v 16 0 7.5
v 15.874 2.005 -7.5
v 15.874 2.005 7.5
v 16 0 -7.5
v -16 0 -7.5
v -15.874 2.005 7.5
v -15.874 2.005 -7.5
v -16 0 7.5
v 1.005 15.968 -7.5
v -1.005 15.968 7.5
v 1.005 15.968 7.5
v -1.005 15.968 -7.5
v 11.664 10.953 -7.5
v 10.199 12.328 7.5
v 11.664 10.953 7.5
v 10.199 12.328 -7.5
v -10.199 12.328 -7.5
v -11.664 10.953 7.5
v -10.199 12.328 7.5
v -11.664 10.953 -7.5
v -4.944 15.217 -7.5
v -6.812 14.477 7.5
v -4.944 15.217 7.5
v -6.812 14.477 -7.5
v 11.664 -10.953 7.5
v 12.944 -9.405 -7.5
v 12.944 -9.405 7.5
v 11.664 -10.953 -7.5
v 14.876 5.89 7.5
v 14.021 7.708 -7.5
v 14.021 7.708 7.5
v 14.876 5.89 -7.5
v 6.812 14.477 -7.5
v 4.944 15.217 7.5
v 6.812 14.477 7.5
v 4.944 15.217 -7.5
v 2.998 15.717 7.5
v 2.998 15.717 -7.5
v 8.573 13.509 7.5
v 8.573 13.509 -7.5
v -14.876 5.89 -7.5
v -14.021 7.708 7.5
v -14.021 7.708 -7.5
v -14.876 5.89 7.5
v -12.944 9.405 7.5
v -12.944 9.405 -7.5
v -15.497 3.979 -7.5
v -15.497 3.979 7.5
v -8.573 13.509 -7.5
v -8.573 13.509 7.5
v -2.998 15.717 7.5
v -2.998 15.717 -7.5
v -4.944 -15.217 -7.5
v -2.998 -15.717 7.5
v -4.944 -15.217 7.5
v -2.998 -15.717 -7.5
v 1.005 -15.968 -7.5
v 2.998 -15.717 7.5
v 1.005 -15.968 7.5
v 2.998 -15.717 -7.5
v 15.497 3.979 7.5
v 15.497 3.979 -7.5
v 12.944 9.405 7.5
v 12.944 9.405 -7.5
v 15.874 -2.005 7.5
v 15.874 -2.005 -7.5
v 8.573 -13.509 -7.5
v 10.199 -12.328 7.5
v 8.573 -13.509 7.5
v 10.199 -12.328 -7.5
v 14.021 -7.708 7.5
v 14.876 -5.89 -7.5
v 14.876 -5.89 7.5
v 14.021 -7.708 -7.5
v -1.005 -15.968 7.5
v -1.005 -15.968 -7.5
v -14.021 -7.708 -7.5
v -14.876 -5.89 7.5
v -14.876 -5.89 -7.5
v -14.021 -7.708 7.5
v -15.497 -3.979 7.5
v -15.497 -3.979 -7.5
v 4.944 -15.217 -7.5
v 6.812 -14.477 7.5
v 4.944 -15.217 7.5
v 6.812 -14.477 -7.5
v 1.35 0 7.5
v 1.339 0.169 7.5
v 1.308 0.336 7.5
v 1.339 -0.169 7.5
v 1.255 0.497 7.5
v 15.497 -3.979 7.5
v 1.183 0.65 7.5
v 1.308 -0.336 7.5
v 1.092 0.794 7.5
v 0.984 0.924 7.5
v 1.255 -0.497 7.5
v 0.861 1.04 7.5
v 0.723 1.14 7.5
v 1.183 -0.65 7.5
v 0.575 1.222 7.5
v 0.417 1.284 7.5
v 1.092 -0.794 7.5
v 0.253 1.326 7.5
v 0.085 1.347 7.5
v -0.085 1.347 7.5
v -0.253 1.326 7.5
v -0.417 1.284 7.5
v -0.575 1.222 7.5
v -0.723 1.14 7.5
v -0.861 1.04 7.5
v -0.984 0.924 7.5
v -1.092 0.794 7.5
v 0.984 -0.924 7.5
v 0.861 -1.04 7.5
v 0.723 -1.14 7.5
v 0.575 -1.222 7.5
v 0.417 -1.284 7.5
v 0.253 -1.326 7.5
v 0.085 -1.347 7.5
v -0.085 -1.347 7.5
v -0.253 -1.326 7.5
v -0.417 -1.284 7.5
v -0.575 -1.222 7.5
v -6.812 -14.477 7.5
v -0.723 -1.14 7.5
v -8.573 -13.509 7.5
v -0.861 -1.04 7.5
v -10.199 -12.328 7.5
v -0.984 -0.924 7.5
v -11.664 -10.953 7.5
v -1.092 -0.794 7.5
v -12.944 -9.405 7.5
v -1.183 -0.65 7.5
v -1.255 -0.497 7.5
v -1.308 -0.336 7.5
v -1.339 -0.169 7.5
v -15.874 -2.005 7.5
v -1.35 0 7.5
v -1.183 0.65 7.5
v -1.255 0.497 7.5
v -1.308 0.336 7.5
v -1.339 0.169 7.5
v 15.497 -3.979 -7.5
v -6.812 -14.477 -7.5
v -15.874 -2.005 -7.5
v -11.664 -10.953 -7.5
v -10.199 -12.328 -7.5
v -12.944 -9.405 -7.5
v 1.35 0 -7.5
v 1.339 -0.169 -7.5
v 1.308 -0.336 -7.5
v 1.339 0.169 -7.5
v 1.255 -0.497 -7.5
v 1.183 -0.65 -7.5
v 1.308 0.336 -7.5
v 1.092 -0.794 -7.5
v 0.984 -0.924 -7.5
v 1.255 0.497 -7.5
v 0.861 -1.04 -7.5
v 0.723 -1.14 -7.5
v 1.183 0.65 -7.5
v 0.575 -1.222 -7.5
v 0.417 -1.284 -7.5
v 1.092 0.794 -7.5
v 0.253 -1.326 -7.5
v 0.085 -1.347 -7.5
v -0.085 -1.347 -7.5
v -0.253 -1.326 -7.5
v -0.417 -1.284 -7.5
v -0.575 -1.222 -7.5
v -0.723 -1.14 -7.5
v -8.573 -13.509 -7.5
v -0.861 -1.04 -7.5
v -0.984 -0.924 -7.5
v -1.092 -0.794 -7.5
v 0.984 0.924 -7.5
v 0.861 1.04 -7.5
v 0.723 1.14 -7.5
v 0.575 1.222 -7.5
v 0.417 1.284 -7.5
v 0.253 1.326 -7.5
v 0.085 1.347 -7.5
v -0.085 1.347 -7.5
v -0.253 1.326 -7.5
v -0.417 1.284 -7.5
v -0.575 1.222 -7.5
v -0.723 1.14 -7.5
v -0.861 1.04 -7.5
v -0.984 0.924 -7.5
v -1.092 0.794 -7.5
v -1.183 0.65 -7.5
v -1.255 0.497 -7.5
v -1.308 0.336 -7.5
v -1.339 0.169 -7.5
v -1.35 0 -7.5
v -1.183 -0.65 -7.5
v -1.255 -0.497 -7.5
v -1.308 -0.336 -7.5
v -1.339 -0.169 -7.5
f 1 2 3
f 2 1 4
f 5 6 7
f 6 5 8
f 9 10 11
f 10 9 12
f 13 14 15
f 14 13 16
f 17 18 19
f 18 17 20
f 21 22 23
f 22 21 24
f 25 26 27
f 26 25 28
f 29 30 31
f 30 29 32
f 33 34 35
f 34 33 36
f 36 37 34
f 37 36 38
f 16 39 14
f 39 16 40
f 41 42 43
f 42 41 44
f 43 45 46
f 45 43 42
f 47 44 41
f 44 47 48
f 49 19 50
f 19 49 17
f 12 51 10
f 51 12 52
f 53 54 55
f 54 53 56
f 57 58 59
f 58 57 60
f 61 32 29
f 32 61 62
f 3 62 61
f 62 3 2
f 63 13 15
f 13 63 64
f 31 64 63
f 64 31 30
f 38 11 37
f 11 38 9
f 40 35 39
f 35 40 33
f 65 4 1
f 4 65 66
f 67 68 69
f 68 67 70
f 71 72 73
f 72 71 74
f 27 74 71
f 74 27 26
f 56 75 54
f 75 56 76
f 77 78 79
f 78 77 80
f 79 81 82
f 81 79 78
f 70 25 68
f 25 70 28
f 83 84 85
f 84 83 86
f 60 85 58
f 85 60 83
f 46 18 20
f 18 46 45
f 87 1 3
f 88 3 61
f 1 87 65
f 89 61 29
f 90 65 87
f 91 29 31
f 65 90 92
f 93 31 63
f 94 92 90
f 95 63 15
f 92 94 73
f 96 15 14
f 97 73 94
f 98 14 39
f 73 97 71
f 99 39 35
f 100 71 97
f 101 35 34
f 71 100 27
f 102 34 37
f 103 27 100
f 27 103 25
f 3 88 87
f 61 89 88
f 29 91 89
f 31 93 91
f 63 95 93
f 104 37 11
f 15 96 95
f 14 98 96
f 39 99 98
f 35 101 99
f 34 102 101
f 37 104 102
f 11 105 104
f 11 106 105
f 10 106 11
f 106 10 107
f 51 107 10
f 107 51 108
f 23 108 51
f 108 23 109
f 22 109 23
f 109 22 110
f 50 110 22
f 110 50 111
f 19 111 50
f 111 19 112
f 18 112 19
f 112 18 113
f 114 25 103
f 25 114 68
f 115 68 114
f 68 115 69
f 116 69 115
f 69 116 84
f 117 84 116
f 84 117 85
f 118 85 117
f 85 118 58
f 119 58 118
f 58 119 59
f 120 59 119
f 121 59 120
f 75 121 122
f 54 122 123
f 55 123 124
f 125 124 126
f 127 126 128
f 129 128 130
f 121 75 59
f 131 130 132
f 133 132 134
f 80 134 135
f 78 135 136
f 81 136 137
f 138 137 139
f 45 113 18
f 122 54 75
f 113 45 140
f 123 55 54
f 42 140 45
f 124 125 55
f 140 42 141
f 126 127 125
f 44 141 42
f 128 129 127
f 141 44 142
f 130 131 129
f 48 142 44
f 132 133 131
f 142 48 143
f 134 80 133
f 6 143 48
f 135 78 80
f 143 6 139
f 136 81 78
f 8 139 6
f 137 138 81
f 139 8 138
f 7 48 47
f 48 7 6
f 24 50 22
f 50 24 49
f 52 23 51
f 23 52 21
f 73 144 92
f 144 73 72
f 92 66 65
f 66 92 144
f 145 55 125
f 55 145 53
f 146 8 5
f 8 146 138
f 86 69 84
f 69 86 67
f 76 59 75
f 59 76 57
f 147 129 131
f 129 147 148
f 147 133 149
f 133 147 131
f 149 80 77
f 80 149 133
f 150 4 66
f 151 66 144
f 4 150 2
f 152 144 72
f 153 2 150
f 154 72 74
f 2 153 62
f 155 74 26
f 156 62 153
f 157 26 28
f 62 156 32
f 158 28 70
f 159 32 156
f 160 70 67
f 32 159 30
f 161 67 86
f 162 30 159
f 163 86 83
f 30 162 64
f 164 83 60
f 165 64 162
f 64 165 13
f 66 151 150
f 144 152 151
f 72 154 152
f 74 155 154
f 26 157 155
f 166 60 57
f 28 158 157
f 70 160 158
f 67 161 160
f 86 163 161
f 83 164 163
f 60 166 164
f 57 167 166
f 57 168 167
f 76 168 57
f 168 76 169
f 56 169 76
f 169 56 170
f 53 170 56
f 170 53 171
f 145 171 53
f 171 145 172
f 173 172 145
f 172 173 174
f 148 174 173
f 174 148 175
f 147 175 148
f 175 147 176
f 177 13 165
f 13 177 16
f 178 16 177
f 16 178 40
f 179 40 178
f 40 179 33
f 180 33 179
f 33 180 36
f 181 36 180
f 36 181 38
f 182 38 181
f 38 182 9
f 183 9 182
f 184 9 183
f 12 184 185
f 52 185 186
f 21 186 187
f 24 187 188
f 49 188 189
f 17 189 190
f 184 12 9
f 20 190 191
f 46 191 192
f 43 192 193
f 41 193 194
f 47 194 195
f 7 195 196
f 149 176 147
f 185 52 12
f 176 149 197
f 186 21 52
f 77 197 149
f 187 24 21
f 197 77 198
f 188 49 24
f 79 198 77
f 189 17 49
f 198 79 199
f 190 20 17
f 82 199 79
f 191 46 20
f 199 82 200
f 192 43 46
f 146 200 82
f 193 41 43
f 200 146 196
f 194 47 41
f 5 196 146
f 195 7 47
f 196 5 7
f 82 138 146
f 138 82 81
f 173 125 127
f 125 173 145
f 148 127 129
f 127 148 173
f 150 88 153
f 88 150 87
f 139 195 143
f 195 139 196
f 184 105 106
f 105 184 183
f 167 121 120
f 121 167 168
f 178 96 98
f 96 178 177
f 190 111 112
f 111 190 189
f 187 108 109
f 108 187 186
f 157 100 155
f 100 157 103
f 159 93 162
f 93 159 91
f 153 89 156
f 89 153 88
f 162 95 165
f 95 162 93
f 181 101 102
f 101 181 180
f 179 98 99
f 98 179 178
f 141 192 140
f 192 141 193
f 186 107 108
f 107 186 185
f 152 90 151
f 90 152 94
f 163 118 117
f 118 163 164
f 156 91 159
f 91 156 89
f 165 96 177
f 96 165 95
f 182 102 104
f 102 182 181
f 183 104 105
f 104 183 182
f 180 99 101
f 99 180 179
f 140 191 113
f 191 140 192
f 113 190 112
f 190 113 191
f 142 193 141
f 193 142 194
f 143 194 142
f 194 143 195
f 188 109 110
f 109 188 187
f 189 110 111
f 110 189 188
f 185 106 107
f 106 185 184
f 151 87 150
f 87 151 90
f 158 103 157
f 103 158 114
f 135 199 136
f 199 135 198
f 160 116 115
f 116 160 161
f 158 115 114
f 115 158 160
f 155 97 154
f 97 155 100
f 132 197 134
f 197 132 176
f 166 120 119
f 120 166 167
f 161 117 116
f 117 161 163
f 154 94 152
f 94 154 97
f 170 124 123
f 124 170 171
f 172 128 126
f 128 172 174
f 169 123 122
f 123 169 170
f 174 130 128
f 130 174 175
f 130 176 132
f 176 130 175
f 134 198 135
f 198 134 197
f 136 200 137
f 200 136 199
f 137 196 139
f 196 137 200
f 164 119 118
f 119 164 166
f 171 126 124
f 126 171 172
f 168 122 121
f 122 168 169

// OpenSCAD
$fn = 50;


difference() {
	union() {
		translate(v = [0, 0, -7.5000000000]) {
			cylinder(h = 15, r = 16.0000000000);
		}
	}
	union() {
		translate(v = [0, 0, -100.0000000000]) {
			cylinder(h = 200, r = 1.3500000000);
		}
	}
}
